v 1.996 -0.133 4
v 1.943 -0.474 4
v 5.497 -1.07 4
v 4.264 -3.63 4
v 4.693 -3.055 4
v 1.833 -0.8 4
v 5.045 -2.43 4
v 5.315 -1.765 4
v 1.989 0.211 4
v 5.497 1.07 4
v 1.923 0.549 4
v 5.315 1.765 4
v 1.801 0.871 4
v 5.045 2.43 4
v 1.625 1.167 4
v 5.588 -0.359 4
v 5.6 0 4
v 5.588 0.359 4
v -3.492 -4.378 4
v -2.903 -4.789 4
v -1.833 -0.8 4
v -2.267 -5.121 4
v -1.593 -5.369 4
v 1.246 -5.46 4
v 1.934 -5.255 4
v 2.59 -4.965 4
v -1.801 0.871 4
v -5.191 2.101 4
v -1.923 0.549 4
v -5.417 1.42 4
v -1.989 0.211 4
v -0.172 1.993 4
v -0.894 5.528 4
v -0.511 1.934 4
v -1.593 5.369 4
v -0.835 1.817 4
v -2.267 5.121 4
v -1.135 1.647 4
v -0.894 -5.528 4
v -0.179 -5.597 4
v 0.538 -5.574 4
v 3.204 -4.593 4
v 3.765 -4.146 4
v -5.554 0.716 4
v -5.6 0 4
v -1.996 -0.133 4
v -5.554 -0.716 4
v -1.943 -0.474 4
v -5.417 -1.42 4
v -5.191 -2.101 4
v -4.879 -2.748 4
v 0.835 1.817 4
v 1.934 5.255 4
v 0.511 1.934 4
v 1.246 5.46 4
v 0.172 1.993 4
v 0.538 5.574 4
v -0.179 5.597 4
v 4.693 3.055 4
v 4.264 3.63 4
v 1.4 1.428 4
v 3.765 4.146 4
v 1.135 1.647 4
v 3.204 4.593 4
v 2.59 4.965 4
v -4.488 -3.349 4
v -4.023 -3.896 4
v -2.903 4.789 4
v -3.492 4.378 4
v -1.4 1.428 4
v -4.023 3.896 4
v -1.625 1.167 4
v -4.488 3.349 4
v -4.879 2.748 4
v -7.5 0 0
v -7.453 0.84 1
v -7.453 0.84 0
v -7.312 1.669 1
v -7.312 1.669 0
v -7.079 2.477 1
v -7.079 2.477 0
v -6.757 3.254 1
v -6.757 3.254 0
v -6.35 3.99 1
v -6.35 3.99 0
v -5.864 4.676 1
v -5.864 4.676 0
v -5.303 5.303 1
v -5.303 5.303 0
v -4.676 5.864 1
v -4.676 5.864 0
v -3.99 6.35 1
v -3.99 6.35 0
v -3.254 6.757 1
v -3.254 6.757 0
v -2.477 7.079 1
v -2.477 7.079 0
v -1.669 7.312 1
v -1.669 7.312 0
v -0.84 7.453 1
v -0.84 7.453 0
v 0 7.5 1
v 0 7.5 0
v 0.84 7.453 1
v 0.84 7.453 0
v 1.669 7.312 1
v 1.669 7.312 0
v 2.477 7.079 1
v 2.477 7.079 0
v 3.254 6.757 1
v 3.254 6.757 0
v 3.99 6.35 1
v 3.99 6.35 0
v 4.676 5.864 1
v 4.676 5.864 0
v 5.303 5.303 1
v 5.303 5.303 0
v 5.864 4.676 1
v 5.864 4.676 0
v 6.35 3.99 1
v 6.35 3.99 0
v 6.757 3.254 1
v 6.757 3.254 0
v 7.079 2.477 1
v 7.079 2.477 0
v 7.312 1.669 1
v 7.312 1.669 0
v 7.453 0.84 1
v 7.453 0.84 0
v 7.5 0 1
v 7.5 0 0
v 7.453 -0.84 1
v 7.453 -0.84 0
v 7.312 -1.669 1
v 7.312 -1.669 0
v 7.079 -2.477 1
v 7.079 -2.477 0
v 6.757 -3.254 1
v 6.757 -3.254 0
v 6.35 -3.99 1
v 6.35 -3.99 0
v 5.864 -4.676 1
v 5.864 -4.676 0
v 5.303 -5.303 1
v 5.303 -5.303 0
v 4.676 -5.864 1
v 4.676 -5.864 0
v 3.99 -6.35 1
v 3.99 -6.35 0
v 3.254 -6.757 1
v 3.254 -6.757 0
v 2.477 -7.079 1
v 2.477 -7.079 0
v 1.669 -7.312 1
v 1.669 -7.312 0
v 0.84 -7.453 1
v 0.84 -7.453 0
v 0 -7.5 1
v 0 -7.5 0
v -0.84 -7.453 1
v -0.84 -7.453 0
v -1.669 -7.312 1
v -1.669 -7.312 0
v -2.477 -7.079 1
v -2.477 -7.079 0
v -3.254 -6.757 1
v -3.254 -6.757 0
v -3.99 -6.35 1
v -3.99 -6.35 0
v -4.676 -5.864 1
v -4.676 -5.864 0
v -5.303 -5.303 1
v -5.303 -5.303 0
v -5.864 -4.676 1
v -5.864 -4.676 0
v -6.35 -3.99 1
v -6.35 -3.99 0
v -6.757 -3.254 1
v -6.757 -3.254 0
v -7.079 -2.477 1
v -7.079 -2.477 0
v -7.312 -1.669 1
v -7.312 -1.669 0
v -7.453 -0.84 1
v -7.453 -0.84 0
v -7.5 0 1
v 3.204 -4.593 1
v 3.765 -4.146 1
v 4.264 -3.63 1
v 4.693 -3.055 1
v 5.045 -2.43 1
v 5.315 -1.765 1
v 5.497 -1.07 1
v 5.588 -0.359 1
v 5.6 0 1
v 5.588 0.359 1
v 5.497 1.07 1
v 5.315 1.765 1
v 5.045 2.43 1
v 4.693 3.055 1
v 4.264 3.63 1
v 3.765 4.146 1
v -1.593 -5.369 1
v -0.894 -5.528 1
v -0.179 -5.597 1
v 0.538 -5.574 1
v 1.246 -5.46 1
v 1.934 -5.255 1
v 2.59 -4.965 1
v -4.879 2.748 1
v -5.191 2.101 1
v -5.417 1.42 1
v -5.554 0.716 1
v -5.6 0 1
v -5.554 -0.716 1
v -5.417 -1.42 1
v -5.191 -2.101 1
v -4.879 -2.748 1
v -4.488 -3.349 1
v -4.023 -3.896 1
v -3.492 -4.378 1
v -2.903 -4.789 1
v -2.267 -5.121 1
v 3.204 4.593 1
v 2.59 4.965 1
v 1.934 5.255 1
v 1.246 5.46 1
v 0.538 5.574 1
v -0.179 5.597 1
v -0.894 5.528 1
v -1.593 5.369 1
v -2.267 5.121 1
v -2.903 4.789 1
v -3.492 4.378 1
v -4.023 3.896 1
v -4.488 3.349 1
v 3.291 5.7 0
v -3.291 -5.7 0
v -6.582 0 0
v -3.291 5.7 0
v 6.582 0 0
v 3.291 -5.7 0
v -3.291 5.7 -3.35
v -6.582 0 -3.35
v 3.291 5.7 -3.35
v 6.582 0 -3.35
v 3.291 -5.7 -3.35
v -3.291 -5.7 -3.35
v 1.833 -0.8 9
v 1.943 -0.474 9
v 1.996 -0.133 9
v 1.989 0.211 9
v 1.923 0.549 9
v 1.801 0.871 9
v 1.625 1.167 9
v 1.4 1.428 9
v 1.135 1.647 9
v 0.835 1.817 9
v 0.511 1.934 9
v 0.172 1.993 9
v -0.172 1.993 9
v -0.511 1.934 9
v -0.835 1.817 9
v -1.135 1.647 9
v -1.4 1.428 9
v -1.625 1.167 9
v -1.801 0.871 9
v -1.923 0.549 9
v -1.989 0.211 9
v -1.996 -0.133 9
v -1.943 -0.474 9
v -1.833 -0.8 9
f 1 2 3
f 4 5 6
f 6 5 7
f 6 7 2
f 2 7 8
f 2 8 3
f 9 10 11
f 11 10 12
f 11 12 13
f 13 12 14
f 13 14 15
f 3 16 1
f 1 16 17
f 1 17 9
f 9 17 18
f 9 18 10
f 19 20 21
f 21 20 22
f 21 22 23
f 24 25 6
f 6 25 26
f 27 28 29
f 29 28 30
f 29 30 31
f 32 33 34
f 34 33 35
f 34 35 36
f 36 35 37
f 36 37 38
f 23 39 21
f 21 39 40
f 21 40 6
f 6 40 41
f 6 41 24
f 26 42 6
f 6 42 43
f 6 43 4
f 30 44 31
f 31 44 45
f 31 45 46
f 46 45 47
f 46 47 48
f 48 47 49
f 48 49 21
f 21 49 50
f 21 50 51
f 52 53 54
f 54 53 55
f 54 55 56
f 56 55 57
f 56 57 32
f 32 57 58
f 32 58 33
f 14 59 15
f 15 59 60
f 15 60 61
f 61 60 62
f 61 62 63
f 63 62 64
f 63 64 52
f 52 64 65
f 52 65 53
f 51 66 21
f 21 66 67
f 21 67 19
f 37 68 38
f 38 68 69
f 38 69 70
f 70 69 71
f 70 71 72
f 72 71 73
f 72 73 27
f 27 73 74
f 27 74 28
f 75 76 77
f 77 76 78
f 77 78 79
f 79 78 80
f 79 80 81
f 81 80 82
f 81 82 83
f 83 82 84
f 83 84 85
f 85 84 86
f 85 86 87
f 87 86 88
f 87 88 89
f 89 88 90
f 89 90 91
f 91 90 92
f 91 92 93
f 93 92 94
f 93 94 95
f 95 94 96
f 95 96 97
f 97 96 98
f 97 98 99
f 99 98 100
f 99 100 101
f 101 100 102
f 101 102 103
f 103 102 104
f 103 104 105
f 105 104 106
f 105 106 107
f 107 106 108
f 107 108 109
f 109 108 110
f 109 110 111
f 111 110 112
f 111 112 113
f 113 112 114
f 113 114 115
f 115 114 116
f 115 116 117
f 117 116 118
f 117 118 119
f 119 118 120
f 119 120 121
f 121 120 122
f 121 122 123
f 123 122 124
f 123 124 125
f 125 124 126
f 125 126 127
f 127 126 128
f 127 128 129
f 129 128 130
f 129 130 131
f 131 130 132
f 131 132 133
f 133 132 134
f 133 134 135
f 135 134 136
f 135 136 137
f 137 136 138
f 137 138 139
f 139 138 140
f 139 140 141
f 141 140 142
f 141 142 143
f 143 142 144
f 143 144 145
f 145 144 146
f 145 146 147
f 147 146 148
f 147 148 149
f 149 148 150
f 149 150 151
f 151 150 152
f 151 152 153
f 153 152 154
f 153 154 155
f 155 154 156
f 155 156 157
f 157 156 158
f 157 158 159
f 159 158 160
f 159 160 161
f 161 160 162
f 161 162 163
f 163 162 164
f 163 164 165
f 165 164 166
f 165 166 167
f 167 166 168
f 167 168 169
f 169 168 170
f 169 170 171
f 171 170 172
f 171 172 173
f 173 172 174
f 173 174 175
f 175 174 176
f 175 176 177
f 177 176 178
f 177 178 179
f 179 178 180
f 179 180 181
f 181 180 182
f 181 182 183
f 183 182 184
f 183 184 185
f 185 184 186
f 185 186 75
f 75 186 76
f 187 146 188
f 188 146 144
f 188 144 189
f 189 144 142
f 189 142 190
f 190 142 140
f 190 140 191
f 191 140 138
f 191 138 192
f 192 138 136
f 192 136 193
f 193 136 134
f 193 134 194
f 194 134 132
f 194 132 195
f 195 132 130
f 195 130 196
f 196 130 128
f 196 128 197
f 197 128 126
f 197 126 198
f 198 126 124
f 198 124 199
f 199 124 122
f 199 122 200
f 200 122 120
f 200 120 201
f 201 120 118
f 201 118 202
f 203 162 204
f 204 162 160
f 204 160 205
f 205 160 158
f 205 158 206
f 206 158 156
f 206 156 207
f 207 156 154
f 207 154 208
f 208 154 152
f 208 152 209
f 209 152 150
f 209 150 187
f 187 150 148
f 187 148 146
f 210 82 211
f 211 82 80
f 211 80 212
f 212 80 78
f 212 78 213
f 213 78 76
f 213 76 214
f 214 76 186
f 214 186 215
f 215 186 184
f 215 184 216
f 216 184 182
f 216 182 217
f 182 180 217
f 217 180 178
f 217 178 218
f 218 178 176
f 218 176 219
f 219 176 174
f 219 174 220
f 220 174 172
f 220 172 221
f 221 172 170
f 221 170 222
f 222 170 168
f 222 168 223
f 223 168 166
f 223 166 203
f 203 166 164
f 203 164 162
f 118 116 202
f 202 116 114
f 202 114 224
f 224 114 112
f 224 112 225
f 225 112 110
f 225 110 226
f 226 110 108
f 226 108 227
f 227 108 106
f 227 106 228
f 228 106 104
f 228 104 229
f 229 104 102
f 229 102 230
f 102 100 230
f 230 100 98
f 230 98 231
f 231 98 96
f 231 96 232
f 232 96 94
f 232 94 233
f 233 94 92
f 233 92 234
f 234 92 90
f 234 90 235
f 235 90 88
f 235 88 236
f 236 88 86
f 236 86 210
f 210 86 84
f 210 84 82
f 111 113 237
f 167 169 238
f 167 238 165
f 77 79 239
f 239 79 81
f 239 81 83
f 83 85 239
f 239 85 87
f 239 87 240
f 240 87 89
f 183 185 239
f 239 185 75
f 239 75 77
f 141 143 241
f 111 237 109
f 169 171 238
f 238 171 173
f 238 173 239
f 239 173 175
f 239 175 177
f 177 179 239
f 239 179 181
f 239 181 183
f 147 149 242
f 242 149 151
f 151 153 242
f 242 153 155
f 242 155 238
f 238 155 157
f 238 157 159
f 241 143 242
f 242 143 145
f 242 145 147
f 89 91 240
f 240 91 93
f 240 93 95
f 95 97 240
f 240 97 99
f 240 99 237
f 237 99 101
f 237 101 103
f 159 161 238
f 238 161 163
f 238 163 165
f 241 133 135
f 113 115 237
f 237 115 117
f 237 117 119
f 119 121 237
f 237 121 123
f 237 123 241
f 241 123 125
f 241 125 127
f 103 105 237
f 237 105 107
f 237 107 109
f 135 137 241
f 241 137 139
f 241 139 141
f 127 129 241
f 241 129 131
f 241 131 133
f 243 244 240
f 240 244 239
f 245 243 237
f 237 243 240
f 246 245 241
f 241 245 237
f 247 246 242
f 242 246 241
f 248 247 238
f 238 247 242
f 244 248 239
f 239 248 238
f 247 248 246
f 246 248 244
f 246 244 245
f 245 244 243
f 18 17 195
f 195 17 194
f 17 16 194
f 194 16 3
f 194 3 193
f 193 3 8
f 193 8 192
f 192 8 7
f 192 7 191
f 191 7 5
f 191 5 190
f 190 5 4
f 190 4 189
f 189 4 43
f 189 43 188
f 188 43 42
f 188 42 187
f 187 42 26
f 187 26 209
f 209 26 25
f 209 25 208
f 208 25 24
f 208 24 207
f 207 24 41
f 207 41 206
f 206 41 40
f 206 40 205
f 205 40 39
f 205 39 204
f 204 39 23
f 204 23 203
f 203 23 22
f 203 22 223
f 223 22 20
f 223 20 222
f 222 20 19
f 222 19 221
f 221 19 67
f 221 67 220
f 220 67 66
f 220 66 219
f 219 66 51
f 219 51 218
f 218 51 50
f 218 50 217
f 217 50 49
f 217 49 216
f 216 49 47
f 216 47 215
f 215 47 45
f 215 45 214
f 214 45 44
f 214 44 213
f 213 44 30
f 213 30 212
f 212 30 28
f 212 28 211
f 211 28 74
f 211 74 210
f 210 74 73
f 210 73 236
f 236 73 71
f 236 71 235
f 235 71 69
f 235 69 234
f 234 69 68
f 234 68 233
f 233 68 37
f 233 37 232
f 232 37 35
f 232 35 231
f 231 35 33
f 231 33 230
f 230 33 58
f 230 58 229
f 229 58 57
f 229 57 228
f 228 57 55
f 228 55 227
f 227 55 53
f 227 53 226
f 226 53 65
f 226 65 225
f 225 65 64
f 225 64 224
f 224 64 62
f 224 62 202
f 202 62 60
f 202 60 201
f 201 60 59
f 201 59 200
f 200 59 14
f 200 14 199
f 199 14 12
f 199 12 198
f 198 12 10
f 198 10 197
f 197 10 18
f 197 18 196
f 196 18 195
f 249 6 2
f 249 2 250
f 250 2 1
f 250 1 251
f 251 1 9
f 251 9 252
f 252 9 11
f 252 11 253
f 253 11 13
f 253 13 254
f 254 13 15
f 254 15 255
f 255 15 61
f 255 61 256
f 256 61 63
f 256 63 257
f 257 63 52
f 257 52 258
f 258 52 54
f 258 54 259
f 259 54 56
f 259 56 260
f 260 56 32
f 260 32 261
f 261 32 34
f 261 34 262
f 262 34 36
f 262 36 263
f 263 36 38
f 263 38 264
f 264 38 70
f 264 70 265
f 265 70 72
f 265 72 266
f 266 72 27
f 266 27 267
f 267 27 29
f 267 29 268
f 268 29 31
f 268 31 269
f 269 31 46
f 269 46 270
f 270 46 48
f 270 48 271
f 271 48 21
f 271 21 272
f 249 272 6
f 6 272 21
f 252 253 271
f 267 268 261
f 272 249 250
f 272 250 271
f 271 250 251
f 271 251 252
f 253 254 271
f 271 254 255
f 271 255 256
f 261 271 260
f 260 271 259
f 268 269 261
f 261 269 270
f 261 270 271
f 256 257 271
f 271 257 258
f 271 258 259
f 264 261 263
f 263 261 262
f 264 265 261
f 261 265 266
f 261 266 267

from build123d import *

# Parameters (mm, degrees)
SKETCH1_R           = 7.5
SKETCH1_R_2         = 5.6
BOSS_EXTRUDE1_DEPTH = 1
BOSS_EXTRUDE2_DEPTH = 3.35
BOSS_EXTRUDE3_START = 1
SKETCH1_4_R         = 5.6
BOSS_EXTRUDE3_DEPTH = 3
BOSS_EXTRUDE4_DEPTH = 5


with BuildPart() as part:
    # Sketch1 → Boss-Extrude1 (new body)
    with BuildSketch(Plane.XY):
        Circle(SKETCH1_R)
        Polygon((-3.290896534, 5.7), (-6.581793069, 0), (-3.290896534, -5.7), (3.290896534, -5.7), (6.581793069, 0), (3.290896534, 5.7), align=None, mode=Mode.SUBTRACT)
        Circle(SKETCH1_R)
        Circle(SKETCH1_R_2, mode=Mode.SUBTRACT)
        Circle(SKETCH1_R_2)
    extrude(amount=BOSS_EXTRUDE1_DEPTH)

    # Sketch1<3> → Boss-Extrude2 (add)
    with BuildSketch(Plane.XY):
        Polygon((-3.290896534, -5.7), (3.290896534, -5.7), (6.581793069, 0), (3.290896534, 5.7), (-3.290896534, 5.7), (-6.581793069, 0), align=None)
    extrude(amount=-BOSS_EXTRUDE2_DEPTH)

    # Sketch1<4> → Boss-Extrude3 (add)
    with BuildSketch(Plane.XY.offset(BOSS_EXTRUDE3_START)):
        Circle(SKETCH1_4_R)
    extrude(amount=BOSS_EXTRUDE3_DEPTH)

    # Sketch2 → Boss-Extrude4 (add, symmetric)
    with BuildSketch(Plane.XY.offset(4)):
        with BuildLine():
            Line((-1.833030278, -0.8), (1.833030278, -0.8))
            ThreePointArc((1.833030278, -0.8), (0, 2), (-1.833030278, -0.8))
        make_face()
    extrude(amount=BOSS_EXTRUDE4_DEPTH, both=True)


solid = part.part
